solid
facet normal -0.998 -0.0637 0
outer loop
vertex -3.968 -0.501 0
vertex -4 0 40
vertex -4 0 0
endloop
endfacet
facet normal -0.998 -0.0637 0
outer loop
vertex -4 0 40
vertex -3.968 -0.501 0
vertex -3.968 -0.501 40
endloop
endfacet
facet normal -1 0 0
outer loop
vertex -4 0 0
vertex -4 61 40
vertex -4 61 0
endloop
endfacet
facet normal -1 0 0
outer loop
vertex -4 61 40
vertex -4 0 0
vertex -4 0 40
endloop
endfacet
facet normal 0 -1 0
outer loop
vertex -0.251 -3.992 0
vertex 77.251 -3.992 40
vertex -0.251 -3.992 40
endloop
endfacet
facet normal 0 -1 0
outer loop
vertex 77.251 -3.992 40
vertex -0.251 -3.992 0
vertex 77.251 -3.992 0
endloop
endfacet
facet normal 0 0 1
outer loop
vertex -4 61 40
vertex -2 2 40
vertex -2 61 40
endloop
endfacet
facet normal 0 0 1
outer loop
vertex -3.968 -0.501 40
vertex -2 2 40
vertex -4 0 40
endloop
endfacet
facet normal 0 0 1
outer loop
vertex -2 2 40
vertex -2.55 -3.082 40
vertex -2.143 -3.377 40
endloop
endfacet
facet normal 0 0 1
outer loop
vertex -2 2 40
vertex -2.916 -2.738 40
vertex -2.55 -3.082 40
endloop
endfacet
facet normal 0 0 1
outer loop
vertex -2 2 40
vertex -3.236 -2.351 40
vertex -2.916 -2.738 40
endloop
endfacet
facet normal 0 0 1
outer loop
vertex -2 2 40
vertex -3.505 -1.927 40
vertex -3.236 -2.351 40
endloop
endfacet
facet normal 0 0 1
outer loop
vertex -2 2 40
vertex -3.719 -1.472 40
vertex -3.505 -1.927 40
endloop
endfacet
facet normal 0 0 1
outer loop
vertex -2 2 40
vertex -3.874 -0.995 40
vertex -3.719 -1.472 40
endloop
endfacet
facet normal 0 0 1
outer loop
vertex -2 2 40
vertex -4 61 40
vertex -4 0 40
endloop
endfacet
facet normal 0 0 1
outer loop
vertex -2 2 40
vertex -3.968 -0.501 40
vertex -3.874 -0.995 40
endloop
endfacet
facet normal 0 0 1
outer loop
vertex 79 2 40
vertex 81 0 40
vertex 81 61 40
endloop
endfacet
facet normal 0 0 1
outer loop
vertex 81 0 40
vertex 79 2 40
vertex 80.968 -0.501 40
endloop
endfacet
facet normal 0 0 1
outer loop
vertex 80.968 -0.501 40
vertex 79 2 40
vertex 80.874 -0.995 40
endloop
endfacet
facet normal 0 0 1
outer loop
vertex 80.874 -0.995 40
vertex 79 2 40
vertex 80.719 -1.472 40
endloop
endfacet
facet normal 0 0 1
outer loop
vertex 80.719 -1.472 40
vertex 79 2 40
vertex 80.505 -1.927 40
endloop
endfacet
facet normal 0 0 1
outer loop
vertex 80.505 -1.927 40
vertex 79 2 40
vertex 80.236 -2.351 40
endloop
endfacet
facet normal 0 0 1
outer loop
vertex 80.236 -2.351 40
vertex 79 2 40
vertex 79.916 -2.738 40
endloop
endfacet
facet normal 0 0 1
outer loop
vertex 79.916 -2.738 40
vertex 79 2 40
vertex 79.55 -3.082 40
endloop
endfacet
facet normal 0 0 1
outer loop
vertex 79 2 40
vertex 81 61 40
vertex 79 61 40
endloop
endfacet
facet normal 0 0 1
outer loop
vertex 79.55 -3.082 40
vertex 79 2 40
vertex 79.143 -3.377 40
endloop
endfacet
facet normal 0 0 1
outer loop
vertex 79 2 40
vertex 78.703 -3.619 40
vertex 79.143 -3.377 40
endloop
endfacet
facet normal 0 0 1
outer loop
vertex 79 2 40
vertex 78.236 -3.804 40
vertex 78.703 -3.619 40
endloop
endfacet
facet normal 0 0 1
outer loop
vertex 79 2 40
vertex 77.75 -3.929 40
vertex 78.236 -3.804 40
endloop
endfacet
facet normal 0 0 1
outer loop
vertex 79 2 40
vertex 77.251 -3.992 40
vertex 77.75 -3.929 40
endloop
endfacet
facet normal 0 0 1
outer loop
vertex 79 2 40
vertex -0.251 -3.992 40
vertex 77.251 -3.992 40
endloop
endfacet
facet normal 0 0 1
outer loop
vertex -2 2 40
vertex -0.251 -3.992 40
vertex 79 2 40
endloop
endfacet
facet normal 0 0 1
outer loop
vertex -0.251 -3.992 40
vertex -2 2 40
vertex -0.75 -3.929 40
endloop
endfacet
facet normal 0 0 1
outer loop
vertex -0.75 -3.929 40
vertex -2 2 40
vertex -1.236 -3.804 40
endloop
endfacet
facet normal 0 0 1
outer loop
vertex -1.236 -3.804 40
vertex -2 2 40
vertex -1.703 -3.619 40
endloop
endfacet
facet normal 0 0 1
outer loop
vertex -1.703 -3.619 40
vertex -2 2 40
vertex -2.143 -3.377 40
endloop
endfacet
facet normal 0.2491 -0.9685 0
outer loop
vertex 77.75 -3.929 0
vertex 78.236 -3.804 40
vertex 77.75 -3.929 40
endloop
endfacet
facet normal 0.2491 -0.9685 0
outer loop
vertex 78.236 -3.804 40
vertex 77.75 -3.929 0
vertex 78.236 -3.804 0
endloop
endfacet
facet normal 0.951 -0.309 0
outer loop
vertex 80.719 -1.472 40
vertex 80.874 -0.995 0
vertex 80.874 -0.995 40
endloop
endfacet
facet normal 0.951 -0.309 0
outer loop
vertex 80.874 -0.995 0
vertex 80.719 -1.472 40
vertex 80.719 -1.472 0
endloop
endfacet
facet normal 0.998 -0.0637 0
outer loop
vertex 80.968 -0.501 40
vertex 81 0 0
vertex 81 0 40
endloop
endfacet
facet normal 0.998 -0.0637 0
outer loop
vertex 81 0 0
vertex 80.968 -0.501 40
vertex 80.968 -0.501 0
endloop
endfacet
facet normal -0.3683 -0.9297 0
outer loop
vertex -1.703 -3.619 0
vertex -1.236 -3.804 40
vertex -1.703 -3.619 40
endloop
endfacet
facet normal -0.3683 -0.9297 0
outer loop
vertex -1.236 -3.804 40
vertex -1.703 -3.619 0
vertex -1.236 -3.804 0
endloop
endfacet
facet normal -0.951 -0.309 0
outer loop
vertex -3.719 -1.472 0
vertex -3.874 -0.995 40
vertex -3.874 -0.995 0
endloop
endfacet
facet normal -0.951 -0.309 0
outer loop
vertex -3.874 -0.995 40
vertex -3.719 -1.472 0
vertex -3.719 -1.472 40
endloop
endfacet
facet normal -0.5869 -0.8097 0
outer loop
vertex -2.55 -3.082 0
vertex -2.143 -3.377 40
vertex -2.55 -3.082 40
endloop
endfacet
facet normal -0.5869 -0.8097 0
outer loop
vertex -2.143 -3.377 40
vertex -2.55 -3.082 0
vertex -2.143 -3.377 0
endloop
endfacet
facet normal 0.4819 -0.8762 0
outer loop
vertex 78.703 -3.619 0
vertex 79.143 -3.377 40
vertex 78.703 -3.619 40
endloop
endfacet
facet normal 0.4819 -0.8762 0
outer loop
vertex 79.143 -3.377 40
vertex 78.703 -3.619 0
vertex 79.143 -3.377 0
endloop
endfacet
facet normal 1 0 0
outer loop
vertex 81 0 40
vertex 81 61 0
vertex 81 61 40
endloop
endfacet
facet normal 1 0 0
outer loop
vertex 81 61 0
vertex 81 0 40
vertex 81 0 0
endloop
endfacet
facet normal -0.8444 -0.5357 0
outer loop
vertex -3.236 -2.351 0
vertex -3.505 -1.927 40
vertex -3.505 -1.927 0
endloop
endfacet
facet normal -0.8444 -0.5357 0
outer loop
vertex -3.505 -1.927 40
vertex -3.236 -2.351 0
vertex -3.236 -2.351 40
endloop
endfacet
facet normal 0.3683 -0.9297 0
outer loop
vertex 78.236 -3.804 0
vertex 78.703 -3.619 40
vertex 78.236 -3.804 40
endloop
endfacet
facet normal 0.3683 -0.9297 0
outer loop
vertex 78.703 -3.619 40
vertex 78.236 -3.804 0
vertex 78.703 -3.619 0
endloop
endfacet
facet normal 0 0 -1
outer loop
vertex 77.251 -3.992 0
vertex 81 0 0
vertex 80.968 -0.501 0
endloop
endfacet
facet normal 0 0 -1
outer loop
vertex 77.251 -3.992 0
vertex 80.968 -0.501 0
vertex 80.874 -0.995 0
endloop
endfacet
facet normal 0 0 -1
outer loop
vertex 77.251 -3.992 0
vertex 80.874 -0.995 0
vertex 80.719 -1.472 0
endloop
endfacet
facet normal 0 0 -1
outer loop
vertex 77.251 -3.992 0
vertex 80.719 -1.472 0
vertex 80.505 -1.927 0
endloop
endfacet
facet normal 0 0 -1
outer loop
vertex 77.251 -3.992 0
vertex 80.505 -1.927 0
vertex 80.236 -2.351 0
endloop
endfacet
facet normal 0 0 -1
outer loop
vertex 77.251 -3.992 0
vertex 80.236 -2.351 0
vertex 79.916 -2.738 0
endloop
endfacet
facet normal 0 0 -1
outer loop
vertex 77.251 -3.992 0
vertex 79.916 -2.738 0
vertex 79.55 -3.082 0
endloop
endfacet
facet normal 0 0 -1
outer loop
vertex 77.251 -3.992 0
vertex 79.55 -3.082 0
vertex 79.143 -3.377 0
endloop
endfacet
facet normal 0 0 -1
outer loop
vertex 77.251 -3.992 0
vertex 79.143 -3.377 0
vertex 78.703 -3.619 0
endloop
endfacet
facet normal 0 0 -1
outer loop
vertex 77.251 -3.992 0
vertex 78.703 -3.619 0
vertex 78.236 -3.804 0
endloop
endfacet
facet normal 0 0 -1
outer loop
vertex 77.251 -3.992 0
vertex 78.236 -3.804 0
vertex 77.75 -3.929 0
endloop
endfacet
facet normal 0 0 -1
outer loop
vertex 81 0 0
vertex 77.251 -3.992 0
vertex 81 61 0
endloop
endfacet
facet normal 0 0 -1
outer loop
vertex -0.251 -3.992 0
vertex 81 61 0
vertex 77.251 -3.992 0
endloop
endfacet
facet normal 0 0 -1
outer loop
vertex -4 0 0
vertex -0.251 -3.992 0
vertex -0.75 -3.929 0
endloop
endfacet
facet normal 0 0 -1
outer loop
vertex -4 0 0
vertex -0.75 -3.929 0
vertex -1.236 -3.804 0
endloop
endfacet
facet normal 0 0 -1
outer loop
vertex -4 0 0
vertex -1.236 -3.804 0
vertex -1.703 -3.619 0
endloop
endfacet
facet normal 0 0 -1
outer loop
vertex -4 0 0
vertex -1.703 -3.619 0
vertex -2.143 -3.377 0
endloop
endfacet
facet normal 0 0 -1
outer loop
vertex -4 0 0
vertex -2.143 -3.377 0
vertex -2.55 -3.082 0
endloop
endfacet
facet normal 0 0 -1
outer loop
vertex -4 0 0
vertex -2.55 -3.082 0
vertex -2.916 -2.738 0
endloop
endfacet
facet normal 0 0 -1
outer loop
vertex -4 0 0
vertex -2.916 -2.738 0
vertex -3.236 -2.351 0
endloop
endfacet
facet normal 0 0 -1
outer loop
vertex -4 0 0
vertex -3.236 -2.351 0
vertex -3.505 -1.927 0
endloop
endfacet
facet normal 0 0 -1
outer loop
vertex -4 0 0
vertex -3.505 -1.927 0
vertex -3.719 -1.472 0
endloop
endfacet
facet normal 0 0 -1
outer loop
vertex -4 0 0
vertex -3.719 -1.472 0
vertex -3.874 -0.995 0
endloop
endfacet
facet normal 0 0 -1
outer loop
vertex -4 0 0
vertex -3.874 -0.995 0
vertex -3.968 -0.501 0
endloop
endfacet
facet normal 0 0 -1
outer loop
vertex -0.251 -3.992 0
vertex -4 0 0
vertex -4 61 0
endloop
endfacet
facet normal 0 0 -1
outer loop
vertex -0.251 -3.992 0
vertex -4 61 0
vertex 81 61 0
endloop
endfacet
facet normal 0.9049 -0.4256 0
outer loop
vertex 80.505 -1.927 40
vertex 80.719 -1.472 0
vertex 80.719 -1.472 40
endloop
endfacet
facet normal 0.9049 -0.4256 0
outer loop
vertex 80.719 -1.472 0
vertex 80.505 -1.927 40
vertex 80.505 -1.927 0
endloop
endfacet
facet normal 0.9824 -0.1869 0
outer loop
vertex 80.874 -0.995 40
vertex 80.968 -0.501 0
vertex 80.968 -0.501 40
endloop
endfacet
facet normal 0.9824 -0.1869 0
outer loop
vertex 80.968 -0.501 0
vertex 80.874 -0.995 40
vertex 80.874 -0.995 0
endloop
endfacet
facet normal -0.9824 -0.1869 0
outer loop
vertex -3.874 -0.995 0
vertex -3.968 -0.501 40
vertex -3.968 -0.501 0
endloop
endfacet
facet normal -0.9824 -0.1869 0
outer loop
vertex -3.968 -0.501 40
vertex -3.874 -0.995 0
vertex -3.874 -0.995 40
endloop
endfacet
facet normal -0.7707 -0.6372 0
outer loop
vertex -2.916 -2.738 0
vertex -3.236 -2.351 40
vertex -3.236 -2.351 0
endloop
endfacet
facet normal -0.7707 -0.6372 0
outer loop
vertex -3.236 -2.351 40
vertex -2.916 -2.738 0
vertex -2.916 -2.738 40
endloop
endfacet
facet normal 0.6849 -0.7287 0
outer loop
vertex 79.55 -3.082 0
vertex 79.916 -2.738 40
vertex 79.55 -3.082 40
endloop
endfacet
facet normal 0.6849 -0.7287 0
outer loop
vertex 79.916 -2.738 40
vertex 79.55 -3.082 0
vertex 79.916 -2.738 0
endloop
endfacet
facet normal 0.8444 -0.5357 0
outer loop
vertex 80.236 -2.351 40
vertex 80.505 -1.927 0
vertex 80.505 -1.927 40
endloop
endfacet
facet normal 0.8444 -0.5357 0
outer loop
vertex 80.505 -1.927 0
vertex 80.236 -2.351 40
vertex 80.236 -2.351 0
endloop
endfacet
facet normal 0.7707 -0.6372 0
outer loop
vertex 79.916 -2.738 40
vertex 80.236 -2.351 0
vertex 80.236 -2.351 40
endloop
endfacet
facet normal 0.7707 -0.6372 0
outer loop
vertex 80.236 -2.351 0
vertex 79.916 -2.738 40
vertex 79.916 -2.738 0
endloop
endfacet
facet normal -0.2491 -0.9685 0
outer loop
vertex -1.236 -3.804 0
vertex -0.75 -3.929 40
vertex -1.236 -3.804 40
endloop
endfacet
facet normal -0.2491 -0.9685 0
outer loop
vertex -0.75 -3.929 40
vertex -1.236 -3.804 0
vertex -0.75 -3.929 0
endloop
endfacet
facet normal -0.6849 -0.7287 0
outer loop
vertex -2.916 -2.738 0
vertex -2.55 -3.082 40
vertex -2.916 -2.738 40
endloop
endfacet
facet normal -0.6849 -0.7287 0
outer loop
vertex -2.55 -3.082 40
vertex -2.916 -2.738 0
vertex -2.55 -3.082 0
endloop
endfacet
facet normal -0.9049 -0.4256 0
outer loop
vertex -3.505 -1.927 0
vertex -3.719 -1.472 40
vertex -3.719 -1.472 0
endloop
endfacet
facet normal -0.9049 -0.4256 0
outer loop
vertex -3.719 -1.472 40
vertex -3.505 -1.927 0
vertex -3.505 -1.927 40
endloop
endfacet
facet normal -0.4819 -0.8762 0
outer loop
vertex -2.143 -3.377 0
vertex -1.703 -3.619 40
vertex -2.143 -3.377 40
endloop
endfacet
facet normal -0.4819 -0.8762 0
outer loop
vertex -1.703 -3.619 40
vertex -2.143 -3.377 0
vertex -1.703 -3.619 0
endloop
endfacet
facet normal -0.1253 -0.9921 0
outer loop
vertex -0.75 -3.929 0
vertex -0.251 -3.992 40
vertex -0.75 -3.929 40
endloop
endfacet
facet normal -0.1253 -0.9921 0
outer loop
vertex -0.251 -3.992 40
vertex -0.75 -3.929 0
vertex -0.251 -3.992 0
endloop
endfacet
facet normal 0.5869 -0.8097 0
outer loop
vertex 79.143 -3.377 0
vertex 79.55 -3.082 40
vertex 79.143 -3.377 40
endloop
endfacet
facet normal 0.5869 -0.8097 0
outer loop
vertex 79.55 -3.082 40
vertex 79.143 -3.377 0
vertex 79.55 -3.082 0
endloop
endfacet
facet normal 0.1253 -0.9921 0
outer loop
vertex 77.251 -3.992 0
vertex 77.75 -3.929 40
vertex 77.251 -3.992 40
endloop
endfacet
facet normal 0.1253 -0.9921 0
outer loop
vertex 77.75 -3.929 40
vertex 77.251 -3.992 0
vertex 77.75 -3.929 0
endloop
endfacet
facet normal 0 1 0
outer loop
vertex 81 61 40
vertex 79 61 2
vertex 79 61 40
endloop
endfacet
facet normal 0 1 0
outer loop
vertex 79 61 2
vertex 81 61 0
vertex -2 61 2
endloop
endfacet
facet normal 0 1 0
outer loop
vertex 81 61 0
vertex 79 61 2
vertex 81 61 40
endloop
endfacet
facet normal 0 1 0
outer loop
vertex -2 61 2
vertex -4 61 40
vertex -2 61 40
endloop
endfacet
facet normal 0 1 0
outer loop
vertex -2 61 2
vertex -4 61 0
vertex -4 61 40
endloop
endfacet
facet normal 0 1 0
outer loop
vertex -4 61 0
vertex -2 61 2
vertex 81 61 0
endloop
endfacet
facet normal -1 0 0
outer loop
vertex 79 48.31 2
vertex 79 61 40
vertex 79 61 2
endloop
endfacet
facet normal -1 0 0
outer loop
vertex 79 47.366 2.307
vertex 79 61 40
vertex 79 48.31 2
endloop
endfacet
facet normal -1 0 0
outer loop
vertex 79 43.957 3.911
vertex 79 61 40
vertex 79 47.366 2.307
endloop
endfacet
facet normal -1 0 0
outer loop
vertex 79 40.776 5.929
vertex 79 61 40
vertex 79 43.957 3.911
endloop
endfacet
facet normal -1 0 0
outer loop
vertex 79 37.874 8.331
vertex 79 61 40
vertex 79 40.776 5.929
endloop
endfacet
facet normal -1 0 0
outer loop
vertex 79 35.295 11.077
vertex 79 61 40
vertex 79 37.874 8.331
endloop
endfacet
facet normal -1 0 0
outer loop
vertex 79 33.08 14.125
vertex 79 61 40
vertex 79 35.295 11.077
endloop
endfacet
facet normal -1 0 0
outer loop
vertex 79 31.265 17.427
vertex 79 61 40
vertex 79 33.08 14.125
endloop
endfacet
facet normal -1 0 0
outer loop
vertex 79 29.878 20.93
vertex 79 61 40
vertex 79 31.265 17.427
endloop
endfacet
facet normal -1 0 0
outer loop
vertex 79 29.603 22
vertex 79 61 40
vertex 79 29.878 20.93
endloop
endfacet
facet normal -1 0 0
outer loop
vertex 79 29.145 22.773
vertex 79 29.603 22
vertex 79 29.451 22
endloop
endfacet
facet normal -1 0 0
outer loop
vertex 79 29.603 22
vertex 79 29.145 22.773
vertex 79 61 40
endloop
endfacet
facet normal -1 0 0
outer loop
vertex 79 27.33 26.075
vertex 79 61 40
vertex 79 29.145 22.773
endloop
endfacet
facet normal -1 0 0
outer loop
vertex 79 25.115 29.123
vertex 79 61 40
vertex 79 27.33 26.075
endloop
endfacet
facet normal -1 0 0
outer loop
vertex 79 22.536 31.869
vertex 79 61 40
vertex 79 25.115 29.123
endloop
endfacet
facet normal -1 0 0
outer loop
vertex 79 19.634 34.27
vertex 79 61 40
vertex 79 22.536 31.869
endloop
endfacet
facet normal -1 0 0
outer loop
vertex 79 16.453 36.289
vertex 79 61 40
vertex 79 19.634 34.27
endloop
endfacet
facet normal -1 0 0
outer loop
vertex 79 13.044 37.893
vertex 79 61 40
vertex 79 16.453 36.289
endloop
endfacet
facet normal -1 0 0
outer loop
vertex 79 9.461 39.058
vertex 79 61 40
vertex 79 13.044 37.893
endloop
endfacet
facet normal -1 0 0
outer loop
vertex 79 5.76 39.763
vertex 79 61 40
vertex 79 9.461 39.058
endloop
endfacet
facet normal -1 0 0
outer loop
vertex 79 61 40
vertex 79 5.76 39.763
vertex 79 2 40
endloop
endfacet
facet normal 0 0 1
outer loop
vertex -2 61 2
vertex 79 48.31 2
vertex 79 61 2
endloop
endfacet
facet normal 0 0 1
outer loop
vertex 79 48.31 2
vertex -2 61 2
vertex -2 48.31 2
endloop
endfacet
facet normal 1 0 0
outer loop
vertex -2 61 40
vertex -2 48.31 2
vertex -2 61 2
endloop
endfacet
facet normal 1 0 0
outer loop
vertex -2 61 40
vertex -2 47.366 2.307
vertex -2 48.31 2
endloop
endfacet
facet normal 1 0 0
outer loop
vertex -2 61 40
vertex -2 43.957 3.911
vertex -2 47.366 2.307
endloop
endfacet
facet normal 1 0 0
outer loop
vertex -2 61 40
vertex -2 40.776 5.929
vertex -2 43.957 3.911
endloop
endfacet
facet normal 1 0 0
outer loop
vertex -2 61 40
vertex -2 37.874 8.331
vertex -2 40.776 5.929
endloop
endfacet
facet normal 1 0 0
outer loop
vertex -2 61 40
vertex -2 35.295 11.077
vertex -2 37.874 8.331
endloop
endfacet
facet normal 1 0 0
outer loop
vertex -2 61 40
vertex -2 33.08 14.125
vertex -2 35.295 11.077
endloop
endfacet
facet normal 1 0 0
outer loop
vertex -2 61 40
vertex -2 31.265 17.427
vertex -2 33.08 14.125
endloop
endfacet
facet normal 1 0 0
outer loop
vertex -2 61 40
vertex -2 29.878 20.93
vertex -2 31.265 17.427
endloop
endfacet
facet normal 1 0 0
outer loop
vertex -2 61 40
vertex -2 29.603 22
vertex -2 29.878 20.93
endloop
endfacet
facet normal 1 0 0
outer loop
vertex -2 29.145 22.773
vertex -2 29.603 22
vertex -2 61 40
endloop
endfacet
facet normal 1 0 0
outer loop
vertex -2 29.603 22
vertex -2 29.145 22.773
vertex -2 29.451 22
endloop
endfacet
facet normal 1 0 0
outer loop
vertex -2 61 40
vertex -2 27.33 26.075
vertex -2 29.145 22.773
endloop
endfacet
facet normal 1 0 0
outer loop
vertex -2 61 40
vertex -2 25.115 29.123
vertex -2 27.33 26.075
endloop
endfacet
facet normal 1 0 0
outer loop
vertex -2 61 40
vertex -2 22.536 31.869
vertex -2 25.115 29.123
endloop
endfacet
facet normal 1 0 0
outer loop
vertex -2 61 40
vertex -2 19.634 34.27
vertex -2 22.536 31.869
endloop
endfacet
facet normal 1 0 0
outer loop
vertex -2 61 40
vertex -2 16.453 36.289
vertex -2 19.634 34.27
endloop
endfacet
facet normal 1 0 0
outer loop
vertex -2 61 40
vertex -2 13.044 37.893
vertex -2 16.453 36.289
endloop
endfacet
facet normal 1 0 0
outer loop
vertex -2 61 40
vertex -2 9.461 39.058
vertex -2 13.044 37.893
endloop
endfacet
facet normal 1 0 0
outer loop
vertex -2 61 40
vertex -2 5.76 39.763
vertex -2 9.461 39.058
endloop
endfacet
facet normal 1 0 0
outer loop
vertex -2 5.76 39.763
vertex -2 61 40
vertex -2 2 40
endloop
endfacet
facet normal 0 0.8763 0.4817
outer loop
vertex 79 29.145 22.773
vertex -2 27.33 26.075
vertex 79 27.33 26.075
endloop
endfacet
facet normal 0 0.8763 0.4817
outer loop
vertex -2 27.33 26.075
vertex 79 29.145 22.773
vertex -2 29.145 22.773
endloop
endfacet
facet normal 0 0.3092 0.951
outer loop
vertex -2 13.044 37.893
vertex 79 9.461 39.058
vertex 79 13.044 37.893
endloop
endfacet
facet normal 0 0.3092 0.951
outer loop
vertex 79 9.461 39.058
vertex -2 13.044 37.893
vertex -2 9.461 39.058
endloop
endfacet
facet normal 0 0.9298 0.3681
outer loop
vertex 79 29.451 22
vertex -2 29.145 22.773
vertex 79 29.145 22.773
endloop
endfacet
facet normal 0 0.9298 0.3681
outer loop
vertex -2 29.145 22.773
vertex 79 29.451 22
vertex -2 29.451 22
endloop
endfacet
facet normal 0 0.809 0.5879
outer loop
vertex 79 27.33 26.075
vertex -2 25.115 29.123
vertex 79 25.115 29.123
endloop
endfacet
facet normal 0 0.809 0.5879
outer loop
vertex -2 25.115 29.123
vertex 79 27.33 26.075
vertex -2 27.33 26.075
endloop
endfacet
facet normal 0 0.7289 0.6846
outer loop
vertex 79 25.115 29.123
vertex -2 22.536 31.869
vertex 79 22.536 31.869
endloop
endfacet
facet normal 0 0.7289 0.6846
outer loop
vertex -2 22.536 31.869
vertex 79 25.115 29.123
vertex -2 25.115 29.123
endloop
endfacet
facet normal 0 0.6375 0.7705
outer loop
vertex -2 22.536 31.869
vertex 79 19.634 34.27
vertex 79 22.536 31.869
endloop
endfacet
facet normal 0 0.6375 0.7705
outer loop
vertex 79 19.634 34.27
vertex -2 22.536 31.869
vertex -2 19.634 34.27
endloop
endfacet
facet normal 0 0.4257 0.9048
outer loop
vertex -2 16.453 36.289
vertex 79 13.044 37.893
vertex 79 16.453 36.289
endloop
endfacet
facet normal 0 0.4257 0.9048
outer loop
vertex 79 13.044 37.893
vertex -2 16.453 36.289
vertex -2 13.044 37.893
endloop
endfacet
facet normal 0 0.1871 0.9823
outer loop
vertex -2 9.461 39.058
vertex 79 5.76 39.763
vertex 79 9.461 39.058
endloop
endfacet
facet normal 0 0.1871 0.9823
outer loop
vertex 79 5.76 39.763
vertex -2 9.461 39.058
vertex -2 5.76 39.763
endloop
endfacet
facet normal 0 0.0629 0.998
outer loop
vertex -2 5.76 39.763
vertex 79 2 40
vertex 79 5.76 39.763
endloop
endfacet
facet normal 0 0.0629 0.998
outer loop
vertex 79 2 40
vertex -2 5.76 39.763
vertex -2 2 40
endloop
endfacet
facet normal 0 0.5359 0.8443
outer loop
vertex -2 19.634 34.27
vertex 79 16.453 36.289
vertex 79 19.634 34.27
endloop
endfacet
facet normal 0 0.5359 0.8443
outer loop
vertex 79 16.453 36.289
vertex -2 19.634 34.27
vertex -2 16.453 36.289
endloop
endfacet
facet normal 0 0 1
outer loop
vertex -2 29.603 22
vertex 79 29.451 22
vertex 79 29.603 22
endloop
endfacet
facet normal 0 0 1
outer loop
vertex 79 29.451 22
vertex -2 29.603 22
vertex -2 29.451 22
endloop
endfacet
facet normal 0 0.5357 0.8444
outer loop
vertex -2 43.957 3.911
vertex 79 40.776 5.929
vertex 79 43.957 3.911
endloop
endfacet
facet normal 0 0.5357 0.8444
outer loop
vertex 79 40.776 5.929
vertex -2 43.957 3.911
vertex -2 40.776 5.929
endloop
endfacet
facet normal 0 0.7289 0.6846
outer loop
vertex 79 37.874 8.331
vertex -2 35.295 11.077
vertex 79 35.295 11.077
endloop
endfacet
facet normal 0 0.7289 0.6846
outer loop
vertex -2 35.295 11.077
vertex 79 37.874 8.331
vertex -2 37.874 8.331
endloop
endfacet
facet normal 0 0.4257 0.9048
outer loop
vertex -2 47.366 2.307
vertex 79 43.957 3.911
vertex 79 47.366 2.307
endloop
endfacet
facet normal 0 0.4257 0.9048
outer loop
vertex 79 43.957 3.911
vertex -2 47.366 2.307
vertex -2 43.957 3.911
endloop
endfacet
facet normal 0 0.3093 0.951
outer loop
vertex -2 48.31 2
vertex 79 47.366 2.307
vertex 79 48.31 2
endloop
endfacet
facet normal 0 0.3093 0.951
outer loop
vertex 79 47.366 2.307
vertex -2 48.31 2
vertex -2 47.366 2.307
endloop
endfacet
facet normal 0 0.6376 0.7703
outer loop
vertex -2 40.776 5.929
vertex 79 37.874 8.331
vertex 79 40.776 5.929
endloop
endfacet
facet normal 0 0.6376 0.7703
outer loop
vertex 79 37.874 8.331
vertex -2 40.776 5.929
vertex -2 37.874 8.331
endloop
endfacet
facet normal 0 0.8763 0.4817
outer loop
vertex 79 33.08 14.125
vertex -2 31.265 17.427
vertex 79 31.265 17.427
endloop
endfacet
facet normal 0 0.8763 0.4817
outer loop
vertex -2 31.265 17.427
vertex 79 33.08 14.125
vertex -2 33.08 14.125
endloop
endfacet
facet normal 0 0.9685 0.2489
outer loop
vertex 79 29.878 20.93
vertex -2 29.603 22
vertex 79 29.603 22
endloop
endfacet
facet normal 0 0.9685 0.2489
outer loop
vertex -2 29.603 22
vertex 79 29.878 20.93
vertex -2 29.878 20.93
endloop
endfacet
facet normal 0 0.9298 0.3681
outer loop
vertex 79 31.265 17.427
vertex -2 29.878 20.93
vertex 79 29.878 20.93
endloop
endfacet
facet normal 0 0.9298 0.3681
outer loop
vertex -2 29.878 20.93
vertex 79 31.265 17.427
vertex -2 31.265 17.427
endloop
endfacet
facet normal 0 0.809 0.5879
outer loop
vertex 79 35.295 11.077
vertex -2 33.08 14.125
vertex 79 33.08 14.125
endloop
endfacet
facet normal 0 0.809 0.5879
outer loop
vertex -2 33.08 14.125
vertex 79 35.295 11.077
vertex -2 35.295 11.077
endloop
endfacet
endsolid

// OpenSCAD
//
// ktRACK19
//

gap1 = 0.001;
gap2 = 0.002;
th = 2;
x = 85;
y = 65;
r = 4;
h = 40;
h2 = 1;

difference()
{
    union()
    {
        minkowski()
        {
            cube([x-r*2, y-r*2, h-h2]);
            cylinder(r=r, h=h2, $fn=50);
        }
        translate([-r, 0, 0]) cube([x, y-r, h]);
        

    }

    translate([-r+th, th, th]) cube([x-th*2, y-r, h]);
}

difference()
{
    translate([-r, th, h-30]) rotate([0, 90, 0]) cylinder(r=30, h=x, $fn=50);
    translate([-r-gap1, -y+r+th, -h]) cube([x+gap2, y-r, h*2]);
    translate([-r-gap1, 0, -h]) cube([x+gap2, y-r, h]);
}


difference()
{
    translate([-r, th, th]) cube([x, y-r-th, h/2]);
    translate([-r, 58.41, 30.2]) rotate([0, 90, 0]) cylinder(r=30, h=x, $fn=50);
}
